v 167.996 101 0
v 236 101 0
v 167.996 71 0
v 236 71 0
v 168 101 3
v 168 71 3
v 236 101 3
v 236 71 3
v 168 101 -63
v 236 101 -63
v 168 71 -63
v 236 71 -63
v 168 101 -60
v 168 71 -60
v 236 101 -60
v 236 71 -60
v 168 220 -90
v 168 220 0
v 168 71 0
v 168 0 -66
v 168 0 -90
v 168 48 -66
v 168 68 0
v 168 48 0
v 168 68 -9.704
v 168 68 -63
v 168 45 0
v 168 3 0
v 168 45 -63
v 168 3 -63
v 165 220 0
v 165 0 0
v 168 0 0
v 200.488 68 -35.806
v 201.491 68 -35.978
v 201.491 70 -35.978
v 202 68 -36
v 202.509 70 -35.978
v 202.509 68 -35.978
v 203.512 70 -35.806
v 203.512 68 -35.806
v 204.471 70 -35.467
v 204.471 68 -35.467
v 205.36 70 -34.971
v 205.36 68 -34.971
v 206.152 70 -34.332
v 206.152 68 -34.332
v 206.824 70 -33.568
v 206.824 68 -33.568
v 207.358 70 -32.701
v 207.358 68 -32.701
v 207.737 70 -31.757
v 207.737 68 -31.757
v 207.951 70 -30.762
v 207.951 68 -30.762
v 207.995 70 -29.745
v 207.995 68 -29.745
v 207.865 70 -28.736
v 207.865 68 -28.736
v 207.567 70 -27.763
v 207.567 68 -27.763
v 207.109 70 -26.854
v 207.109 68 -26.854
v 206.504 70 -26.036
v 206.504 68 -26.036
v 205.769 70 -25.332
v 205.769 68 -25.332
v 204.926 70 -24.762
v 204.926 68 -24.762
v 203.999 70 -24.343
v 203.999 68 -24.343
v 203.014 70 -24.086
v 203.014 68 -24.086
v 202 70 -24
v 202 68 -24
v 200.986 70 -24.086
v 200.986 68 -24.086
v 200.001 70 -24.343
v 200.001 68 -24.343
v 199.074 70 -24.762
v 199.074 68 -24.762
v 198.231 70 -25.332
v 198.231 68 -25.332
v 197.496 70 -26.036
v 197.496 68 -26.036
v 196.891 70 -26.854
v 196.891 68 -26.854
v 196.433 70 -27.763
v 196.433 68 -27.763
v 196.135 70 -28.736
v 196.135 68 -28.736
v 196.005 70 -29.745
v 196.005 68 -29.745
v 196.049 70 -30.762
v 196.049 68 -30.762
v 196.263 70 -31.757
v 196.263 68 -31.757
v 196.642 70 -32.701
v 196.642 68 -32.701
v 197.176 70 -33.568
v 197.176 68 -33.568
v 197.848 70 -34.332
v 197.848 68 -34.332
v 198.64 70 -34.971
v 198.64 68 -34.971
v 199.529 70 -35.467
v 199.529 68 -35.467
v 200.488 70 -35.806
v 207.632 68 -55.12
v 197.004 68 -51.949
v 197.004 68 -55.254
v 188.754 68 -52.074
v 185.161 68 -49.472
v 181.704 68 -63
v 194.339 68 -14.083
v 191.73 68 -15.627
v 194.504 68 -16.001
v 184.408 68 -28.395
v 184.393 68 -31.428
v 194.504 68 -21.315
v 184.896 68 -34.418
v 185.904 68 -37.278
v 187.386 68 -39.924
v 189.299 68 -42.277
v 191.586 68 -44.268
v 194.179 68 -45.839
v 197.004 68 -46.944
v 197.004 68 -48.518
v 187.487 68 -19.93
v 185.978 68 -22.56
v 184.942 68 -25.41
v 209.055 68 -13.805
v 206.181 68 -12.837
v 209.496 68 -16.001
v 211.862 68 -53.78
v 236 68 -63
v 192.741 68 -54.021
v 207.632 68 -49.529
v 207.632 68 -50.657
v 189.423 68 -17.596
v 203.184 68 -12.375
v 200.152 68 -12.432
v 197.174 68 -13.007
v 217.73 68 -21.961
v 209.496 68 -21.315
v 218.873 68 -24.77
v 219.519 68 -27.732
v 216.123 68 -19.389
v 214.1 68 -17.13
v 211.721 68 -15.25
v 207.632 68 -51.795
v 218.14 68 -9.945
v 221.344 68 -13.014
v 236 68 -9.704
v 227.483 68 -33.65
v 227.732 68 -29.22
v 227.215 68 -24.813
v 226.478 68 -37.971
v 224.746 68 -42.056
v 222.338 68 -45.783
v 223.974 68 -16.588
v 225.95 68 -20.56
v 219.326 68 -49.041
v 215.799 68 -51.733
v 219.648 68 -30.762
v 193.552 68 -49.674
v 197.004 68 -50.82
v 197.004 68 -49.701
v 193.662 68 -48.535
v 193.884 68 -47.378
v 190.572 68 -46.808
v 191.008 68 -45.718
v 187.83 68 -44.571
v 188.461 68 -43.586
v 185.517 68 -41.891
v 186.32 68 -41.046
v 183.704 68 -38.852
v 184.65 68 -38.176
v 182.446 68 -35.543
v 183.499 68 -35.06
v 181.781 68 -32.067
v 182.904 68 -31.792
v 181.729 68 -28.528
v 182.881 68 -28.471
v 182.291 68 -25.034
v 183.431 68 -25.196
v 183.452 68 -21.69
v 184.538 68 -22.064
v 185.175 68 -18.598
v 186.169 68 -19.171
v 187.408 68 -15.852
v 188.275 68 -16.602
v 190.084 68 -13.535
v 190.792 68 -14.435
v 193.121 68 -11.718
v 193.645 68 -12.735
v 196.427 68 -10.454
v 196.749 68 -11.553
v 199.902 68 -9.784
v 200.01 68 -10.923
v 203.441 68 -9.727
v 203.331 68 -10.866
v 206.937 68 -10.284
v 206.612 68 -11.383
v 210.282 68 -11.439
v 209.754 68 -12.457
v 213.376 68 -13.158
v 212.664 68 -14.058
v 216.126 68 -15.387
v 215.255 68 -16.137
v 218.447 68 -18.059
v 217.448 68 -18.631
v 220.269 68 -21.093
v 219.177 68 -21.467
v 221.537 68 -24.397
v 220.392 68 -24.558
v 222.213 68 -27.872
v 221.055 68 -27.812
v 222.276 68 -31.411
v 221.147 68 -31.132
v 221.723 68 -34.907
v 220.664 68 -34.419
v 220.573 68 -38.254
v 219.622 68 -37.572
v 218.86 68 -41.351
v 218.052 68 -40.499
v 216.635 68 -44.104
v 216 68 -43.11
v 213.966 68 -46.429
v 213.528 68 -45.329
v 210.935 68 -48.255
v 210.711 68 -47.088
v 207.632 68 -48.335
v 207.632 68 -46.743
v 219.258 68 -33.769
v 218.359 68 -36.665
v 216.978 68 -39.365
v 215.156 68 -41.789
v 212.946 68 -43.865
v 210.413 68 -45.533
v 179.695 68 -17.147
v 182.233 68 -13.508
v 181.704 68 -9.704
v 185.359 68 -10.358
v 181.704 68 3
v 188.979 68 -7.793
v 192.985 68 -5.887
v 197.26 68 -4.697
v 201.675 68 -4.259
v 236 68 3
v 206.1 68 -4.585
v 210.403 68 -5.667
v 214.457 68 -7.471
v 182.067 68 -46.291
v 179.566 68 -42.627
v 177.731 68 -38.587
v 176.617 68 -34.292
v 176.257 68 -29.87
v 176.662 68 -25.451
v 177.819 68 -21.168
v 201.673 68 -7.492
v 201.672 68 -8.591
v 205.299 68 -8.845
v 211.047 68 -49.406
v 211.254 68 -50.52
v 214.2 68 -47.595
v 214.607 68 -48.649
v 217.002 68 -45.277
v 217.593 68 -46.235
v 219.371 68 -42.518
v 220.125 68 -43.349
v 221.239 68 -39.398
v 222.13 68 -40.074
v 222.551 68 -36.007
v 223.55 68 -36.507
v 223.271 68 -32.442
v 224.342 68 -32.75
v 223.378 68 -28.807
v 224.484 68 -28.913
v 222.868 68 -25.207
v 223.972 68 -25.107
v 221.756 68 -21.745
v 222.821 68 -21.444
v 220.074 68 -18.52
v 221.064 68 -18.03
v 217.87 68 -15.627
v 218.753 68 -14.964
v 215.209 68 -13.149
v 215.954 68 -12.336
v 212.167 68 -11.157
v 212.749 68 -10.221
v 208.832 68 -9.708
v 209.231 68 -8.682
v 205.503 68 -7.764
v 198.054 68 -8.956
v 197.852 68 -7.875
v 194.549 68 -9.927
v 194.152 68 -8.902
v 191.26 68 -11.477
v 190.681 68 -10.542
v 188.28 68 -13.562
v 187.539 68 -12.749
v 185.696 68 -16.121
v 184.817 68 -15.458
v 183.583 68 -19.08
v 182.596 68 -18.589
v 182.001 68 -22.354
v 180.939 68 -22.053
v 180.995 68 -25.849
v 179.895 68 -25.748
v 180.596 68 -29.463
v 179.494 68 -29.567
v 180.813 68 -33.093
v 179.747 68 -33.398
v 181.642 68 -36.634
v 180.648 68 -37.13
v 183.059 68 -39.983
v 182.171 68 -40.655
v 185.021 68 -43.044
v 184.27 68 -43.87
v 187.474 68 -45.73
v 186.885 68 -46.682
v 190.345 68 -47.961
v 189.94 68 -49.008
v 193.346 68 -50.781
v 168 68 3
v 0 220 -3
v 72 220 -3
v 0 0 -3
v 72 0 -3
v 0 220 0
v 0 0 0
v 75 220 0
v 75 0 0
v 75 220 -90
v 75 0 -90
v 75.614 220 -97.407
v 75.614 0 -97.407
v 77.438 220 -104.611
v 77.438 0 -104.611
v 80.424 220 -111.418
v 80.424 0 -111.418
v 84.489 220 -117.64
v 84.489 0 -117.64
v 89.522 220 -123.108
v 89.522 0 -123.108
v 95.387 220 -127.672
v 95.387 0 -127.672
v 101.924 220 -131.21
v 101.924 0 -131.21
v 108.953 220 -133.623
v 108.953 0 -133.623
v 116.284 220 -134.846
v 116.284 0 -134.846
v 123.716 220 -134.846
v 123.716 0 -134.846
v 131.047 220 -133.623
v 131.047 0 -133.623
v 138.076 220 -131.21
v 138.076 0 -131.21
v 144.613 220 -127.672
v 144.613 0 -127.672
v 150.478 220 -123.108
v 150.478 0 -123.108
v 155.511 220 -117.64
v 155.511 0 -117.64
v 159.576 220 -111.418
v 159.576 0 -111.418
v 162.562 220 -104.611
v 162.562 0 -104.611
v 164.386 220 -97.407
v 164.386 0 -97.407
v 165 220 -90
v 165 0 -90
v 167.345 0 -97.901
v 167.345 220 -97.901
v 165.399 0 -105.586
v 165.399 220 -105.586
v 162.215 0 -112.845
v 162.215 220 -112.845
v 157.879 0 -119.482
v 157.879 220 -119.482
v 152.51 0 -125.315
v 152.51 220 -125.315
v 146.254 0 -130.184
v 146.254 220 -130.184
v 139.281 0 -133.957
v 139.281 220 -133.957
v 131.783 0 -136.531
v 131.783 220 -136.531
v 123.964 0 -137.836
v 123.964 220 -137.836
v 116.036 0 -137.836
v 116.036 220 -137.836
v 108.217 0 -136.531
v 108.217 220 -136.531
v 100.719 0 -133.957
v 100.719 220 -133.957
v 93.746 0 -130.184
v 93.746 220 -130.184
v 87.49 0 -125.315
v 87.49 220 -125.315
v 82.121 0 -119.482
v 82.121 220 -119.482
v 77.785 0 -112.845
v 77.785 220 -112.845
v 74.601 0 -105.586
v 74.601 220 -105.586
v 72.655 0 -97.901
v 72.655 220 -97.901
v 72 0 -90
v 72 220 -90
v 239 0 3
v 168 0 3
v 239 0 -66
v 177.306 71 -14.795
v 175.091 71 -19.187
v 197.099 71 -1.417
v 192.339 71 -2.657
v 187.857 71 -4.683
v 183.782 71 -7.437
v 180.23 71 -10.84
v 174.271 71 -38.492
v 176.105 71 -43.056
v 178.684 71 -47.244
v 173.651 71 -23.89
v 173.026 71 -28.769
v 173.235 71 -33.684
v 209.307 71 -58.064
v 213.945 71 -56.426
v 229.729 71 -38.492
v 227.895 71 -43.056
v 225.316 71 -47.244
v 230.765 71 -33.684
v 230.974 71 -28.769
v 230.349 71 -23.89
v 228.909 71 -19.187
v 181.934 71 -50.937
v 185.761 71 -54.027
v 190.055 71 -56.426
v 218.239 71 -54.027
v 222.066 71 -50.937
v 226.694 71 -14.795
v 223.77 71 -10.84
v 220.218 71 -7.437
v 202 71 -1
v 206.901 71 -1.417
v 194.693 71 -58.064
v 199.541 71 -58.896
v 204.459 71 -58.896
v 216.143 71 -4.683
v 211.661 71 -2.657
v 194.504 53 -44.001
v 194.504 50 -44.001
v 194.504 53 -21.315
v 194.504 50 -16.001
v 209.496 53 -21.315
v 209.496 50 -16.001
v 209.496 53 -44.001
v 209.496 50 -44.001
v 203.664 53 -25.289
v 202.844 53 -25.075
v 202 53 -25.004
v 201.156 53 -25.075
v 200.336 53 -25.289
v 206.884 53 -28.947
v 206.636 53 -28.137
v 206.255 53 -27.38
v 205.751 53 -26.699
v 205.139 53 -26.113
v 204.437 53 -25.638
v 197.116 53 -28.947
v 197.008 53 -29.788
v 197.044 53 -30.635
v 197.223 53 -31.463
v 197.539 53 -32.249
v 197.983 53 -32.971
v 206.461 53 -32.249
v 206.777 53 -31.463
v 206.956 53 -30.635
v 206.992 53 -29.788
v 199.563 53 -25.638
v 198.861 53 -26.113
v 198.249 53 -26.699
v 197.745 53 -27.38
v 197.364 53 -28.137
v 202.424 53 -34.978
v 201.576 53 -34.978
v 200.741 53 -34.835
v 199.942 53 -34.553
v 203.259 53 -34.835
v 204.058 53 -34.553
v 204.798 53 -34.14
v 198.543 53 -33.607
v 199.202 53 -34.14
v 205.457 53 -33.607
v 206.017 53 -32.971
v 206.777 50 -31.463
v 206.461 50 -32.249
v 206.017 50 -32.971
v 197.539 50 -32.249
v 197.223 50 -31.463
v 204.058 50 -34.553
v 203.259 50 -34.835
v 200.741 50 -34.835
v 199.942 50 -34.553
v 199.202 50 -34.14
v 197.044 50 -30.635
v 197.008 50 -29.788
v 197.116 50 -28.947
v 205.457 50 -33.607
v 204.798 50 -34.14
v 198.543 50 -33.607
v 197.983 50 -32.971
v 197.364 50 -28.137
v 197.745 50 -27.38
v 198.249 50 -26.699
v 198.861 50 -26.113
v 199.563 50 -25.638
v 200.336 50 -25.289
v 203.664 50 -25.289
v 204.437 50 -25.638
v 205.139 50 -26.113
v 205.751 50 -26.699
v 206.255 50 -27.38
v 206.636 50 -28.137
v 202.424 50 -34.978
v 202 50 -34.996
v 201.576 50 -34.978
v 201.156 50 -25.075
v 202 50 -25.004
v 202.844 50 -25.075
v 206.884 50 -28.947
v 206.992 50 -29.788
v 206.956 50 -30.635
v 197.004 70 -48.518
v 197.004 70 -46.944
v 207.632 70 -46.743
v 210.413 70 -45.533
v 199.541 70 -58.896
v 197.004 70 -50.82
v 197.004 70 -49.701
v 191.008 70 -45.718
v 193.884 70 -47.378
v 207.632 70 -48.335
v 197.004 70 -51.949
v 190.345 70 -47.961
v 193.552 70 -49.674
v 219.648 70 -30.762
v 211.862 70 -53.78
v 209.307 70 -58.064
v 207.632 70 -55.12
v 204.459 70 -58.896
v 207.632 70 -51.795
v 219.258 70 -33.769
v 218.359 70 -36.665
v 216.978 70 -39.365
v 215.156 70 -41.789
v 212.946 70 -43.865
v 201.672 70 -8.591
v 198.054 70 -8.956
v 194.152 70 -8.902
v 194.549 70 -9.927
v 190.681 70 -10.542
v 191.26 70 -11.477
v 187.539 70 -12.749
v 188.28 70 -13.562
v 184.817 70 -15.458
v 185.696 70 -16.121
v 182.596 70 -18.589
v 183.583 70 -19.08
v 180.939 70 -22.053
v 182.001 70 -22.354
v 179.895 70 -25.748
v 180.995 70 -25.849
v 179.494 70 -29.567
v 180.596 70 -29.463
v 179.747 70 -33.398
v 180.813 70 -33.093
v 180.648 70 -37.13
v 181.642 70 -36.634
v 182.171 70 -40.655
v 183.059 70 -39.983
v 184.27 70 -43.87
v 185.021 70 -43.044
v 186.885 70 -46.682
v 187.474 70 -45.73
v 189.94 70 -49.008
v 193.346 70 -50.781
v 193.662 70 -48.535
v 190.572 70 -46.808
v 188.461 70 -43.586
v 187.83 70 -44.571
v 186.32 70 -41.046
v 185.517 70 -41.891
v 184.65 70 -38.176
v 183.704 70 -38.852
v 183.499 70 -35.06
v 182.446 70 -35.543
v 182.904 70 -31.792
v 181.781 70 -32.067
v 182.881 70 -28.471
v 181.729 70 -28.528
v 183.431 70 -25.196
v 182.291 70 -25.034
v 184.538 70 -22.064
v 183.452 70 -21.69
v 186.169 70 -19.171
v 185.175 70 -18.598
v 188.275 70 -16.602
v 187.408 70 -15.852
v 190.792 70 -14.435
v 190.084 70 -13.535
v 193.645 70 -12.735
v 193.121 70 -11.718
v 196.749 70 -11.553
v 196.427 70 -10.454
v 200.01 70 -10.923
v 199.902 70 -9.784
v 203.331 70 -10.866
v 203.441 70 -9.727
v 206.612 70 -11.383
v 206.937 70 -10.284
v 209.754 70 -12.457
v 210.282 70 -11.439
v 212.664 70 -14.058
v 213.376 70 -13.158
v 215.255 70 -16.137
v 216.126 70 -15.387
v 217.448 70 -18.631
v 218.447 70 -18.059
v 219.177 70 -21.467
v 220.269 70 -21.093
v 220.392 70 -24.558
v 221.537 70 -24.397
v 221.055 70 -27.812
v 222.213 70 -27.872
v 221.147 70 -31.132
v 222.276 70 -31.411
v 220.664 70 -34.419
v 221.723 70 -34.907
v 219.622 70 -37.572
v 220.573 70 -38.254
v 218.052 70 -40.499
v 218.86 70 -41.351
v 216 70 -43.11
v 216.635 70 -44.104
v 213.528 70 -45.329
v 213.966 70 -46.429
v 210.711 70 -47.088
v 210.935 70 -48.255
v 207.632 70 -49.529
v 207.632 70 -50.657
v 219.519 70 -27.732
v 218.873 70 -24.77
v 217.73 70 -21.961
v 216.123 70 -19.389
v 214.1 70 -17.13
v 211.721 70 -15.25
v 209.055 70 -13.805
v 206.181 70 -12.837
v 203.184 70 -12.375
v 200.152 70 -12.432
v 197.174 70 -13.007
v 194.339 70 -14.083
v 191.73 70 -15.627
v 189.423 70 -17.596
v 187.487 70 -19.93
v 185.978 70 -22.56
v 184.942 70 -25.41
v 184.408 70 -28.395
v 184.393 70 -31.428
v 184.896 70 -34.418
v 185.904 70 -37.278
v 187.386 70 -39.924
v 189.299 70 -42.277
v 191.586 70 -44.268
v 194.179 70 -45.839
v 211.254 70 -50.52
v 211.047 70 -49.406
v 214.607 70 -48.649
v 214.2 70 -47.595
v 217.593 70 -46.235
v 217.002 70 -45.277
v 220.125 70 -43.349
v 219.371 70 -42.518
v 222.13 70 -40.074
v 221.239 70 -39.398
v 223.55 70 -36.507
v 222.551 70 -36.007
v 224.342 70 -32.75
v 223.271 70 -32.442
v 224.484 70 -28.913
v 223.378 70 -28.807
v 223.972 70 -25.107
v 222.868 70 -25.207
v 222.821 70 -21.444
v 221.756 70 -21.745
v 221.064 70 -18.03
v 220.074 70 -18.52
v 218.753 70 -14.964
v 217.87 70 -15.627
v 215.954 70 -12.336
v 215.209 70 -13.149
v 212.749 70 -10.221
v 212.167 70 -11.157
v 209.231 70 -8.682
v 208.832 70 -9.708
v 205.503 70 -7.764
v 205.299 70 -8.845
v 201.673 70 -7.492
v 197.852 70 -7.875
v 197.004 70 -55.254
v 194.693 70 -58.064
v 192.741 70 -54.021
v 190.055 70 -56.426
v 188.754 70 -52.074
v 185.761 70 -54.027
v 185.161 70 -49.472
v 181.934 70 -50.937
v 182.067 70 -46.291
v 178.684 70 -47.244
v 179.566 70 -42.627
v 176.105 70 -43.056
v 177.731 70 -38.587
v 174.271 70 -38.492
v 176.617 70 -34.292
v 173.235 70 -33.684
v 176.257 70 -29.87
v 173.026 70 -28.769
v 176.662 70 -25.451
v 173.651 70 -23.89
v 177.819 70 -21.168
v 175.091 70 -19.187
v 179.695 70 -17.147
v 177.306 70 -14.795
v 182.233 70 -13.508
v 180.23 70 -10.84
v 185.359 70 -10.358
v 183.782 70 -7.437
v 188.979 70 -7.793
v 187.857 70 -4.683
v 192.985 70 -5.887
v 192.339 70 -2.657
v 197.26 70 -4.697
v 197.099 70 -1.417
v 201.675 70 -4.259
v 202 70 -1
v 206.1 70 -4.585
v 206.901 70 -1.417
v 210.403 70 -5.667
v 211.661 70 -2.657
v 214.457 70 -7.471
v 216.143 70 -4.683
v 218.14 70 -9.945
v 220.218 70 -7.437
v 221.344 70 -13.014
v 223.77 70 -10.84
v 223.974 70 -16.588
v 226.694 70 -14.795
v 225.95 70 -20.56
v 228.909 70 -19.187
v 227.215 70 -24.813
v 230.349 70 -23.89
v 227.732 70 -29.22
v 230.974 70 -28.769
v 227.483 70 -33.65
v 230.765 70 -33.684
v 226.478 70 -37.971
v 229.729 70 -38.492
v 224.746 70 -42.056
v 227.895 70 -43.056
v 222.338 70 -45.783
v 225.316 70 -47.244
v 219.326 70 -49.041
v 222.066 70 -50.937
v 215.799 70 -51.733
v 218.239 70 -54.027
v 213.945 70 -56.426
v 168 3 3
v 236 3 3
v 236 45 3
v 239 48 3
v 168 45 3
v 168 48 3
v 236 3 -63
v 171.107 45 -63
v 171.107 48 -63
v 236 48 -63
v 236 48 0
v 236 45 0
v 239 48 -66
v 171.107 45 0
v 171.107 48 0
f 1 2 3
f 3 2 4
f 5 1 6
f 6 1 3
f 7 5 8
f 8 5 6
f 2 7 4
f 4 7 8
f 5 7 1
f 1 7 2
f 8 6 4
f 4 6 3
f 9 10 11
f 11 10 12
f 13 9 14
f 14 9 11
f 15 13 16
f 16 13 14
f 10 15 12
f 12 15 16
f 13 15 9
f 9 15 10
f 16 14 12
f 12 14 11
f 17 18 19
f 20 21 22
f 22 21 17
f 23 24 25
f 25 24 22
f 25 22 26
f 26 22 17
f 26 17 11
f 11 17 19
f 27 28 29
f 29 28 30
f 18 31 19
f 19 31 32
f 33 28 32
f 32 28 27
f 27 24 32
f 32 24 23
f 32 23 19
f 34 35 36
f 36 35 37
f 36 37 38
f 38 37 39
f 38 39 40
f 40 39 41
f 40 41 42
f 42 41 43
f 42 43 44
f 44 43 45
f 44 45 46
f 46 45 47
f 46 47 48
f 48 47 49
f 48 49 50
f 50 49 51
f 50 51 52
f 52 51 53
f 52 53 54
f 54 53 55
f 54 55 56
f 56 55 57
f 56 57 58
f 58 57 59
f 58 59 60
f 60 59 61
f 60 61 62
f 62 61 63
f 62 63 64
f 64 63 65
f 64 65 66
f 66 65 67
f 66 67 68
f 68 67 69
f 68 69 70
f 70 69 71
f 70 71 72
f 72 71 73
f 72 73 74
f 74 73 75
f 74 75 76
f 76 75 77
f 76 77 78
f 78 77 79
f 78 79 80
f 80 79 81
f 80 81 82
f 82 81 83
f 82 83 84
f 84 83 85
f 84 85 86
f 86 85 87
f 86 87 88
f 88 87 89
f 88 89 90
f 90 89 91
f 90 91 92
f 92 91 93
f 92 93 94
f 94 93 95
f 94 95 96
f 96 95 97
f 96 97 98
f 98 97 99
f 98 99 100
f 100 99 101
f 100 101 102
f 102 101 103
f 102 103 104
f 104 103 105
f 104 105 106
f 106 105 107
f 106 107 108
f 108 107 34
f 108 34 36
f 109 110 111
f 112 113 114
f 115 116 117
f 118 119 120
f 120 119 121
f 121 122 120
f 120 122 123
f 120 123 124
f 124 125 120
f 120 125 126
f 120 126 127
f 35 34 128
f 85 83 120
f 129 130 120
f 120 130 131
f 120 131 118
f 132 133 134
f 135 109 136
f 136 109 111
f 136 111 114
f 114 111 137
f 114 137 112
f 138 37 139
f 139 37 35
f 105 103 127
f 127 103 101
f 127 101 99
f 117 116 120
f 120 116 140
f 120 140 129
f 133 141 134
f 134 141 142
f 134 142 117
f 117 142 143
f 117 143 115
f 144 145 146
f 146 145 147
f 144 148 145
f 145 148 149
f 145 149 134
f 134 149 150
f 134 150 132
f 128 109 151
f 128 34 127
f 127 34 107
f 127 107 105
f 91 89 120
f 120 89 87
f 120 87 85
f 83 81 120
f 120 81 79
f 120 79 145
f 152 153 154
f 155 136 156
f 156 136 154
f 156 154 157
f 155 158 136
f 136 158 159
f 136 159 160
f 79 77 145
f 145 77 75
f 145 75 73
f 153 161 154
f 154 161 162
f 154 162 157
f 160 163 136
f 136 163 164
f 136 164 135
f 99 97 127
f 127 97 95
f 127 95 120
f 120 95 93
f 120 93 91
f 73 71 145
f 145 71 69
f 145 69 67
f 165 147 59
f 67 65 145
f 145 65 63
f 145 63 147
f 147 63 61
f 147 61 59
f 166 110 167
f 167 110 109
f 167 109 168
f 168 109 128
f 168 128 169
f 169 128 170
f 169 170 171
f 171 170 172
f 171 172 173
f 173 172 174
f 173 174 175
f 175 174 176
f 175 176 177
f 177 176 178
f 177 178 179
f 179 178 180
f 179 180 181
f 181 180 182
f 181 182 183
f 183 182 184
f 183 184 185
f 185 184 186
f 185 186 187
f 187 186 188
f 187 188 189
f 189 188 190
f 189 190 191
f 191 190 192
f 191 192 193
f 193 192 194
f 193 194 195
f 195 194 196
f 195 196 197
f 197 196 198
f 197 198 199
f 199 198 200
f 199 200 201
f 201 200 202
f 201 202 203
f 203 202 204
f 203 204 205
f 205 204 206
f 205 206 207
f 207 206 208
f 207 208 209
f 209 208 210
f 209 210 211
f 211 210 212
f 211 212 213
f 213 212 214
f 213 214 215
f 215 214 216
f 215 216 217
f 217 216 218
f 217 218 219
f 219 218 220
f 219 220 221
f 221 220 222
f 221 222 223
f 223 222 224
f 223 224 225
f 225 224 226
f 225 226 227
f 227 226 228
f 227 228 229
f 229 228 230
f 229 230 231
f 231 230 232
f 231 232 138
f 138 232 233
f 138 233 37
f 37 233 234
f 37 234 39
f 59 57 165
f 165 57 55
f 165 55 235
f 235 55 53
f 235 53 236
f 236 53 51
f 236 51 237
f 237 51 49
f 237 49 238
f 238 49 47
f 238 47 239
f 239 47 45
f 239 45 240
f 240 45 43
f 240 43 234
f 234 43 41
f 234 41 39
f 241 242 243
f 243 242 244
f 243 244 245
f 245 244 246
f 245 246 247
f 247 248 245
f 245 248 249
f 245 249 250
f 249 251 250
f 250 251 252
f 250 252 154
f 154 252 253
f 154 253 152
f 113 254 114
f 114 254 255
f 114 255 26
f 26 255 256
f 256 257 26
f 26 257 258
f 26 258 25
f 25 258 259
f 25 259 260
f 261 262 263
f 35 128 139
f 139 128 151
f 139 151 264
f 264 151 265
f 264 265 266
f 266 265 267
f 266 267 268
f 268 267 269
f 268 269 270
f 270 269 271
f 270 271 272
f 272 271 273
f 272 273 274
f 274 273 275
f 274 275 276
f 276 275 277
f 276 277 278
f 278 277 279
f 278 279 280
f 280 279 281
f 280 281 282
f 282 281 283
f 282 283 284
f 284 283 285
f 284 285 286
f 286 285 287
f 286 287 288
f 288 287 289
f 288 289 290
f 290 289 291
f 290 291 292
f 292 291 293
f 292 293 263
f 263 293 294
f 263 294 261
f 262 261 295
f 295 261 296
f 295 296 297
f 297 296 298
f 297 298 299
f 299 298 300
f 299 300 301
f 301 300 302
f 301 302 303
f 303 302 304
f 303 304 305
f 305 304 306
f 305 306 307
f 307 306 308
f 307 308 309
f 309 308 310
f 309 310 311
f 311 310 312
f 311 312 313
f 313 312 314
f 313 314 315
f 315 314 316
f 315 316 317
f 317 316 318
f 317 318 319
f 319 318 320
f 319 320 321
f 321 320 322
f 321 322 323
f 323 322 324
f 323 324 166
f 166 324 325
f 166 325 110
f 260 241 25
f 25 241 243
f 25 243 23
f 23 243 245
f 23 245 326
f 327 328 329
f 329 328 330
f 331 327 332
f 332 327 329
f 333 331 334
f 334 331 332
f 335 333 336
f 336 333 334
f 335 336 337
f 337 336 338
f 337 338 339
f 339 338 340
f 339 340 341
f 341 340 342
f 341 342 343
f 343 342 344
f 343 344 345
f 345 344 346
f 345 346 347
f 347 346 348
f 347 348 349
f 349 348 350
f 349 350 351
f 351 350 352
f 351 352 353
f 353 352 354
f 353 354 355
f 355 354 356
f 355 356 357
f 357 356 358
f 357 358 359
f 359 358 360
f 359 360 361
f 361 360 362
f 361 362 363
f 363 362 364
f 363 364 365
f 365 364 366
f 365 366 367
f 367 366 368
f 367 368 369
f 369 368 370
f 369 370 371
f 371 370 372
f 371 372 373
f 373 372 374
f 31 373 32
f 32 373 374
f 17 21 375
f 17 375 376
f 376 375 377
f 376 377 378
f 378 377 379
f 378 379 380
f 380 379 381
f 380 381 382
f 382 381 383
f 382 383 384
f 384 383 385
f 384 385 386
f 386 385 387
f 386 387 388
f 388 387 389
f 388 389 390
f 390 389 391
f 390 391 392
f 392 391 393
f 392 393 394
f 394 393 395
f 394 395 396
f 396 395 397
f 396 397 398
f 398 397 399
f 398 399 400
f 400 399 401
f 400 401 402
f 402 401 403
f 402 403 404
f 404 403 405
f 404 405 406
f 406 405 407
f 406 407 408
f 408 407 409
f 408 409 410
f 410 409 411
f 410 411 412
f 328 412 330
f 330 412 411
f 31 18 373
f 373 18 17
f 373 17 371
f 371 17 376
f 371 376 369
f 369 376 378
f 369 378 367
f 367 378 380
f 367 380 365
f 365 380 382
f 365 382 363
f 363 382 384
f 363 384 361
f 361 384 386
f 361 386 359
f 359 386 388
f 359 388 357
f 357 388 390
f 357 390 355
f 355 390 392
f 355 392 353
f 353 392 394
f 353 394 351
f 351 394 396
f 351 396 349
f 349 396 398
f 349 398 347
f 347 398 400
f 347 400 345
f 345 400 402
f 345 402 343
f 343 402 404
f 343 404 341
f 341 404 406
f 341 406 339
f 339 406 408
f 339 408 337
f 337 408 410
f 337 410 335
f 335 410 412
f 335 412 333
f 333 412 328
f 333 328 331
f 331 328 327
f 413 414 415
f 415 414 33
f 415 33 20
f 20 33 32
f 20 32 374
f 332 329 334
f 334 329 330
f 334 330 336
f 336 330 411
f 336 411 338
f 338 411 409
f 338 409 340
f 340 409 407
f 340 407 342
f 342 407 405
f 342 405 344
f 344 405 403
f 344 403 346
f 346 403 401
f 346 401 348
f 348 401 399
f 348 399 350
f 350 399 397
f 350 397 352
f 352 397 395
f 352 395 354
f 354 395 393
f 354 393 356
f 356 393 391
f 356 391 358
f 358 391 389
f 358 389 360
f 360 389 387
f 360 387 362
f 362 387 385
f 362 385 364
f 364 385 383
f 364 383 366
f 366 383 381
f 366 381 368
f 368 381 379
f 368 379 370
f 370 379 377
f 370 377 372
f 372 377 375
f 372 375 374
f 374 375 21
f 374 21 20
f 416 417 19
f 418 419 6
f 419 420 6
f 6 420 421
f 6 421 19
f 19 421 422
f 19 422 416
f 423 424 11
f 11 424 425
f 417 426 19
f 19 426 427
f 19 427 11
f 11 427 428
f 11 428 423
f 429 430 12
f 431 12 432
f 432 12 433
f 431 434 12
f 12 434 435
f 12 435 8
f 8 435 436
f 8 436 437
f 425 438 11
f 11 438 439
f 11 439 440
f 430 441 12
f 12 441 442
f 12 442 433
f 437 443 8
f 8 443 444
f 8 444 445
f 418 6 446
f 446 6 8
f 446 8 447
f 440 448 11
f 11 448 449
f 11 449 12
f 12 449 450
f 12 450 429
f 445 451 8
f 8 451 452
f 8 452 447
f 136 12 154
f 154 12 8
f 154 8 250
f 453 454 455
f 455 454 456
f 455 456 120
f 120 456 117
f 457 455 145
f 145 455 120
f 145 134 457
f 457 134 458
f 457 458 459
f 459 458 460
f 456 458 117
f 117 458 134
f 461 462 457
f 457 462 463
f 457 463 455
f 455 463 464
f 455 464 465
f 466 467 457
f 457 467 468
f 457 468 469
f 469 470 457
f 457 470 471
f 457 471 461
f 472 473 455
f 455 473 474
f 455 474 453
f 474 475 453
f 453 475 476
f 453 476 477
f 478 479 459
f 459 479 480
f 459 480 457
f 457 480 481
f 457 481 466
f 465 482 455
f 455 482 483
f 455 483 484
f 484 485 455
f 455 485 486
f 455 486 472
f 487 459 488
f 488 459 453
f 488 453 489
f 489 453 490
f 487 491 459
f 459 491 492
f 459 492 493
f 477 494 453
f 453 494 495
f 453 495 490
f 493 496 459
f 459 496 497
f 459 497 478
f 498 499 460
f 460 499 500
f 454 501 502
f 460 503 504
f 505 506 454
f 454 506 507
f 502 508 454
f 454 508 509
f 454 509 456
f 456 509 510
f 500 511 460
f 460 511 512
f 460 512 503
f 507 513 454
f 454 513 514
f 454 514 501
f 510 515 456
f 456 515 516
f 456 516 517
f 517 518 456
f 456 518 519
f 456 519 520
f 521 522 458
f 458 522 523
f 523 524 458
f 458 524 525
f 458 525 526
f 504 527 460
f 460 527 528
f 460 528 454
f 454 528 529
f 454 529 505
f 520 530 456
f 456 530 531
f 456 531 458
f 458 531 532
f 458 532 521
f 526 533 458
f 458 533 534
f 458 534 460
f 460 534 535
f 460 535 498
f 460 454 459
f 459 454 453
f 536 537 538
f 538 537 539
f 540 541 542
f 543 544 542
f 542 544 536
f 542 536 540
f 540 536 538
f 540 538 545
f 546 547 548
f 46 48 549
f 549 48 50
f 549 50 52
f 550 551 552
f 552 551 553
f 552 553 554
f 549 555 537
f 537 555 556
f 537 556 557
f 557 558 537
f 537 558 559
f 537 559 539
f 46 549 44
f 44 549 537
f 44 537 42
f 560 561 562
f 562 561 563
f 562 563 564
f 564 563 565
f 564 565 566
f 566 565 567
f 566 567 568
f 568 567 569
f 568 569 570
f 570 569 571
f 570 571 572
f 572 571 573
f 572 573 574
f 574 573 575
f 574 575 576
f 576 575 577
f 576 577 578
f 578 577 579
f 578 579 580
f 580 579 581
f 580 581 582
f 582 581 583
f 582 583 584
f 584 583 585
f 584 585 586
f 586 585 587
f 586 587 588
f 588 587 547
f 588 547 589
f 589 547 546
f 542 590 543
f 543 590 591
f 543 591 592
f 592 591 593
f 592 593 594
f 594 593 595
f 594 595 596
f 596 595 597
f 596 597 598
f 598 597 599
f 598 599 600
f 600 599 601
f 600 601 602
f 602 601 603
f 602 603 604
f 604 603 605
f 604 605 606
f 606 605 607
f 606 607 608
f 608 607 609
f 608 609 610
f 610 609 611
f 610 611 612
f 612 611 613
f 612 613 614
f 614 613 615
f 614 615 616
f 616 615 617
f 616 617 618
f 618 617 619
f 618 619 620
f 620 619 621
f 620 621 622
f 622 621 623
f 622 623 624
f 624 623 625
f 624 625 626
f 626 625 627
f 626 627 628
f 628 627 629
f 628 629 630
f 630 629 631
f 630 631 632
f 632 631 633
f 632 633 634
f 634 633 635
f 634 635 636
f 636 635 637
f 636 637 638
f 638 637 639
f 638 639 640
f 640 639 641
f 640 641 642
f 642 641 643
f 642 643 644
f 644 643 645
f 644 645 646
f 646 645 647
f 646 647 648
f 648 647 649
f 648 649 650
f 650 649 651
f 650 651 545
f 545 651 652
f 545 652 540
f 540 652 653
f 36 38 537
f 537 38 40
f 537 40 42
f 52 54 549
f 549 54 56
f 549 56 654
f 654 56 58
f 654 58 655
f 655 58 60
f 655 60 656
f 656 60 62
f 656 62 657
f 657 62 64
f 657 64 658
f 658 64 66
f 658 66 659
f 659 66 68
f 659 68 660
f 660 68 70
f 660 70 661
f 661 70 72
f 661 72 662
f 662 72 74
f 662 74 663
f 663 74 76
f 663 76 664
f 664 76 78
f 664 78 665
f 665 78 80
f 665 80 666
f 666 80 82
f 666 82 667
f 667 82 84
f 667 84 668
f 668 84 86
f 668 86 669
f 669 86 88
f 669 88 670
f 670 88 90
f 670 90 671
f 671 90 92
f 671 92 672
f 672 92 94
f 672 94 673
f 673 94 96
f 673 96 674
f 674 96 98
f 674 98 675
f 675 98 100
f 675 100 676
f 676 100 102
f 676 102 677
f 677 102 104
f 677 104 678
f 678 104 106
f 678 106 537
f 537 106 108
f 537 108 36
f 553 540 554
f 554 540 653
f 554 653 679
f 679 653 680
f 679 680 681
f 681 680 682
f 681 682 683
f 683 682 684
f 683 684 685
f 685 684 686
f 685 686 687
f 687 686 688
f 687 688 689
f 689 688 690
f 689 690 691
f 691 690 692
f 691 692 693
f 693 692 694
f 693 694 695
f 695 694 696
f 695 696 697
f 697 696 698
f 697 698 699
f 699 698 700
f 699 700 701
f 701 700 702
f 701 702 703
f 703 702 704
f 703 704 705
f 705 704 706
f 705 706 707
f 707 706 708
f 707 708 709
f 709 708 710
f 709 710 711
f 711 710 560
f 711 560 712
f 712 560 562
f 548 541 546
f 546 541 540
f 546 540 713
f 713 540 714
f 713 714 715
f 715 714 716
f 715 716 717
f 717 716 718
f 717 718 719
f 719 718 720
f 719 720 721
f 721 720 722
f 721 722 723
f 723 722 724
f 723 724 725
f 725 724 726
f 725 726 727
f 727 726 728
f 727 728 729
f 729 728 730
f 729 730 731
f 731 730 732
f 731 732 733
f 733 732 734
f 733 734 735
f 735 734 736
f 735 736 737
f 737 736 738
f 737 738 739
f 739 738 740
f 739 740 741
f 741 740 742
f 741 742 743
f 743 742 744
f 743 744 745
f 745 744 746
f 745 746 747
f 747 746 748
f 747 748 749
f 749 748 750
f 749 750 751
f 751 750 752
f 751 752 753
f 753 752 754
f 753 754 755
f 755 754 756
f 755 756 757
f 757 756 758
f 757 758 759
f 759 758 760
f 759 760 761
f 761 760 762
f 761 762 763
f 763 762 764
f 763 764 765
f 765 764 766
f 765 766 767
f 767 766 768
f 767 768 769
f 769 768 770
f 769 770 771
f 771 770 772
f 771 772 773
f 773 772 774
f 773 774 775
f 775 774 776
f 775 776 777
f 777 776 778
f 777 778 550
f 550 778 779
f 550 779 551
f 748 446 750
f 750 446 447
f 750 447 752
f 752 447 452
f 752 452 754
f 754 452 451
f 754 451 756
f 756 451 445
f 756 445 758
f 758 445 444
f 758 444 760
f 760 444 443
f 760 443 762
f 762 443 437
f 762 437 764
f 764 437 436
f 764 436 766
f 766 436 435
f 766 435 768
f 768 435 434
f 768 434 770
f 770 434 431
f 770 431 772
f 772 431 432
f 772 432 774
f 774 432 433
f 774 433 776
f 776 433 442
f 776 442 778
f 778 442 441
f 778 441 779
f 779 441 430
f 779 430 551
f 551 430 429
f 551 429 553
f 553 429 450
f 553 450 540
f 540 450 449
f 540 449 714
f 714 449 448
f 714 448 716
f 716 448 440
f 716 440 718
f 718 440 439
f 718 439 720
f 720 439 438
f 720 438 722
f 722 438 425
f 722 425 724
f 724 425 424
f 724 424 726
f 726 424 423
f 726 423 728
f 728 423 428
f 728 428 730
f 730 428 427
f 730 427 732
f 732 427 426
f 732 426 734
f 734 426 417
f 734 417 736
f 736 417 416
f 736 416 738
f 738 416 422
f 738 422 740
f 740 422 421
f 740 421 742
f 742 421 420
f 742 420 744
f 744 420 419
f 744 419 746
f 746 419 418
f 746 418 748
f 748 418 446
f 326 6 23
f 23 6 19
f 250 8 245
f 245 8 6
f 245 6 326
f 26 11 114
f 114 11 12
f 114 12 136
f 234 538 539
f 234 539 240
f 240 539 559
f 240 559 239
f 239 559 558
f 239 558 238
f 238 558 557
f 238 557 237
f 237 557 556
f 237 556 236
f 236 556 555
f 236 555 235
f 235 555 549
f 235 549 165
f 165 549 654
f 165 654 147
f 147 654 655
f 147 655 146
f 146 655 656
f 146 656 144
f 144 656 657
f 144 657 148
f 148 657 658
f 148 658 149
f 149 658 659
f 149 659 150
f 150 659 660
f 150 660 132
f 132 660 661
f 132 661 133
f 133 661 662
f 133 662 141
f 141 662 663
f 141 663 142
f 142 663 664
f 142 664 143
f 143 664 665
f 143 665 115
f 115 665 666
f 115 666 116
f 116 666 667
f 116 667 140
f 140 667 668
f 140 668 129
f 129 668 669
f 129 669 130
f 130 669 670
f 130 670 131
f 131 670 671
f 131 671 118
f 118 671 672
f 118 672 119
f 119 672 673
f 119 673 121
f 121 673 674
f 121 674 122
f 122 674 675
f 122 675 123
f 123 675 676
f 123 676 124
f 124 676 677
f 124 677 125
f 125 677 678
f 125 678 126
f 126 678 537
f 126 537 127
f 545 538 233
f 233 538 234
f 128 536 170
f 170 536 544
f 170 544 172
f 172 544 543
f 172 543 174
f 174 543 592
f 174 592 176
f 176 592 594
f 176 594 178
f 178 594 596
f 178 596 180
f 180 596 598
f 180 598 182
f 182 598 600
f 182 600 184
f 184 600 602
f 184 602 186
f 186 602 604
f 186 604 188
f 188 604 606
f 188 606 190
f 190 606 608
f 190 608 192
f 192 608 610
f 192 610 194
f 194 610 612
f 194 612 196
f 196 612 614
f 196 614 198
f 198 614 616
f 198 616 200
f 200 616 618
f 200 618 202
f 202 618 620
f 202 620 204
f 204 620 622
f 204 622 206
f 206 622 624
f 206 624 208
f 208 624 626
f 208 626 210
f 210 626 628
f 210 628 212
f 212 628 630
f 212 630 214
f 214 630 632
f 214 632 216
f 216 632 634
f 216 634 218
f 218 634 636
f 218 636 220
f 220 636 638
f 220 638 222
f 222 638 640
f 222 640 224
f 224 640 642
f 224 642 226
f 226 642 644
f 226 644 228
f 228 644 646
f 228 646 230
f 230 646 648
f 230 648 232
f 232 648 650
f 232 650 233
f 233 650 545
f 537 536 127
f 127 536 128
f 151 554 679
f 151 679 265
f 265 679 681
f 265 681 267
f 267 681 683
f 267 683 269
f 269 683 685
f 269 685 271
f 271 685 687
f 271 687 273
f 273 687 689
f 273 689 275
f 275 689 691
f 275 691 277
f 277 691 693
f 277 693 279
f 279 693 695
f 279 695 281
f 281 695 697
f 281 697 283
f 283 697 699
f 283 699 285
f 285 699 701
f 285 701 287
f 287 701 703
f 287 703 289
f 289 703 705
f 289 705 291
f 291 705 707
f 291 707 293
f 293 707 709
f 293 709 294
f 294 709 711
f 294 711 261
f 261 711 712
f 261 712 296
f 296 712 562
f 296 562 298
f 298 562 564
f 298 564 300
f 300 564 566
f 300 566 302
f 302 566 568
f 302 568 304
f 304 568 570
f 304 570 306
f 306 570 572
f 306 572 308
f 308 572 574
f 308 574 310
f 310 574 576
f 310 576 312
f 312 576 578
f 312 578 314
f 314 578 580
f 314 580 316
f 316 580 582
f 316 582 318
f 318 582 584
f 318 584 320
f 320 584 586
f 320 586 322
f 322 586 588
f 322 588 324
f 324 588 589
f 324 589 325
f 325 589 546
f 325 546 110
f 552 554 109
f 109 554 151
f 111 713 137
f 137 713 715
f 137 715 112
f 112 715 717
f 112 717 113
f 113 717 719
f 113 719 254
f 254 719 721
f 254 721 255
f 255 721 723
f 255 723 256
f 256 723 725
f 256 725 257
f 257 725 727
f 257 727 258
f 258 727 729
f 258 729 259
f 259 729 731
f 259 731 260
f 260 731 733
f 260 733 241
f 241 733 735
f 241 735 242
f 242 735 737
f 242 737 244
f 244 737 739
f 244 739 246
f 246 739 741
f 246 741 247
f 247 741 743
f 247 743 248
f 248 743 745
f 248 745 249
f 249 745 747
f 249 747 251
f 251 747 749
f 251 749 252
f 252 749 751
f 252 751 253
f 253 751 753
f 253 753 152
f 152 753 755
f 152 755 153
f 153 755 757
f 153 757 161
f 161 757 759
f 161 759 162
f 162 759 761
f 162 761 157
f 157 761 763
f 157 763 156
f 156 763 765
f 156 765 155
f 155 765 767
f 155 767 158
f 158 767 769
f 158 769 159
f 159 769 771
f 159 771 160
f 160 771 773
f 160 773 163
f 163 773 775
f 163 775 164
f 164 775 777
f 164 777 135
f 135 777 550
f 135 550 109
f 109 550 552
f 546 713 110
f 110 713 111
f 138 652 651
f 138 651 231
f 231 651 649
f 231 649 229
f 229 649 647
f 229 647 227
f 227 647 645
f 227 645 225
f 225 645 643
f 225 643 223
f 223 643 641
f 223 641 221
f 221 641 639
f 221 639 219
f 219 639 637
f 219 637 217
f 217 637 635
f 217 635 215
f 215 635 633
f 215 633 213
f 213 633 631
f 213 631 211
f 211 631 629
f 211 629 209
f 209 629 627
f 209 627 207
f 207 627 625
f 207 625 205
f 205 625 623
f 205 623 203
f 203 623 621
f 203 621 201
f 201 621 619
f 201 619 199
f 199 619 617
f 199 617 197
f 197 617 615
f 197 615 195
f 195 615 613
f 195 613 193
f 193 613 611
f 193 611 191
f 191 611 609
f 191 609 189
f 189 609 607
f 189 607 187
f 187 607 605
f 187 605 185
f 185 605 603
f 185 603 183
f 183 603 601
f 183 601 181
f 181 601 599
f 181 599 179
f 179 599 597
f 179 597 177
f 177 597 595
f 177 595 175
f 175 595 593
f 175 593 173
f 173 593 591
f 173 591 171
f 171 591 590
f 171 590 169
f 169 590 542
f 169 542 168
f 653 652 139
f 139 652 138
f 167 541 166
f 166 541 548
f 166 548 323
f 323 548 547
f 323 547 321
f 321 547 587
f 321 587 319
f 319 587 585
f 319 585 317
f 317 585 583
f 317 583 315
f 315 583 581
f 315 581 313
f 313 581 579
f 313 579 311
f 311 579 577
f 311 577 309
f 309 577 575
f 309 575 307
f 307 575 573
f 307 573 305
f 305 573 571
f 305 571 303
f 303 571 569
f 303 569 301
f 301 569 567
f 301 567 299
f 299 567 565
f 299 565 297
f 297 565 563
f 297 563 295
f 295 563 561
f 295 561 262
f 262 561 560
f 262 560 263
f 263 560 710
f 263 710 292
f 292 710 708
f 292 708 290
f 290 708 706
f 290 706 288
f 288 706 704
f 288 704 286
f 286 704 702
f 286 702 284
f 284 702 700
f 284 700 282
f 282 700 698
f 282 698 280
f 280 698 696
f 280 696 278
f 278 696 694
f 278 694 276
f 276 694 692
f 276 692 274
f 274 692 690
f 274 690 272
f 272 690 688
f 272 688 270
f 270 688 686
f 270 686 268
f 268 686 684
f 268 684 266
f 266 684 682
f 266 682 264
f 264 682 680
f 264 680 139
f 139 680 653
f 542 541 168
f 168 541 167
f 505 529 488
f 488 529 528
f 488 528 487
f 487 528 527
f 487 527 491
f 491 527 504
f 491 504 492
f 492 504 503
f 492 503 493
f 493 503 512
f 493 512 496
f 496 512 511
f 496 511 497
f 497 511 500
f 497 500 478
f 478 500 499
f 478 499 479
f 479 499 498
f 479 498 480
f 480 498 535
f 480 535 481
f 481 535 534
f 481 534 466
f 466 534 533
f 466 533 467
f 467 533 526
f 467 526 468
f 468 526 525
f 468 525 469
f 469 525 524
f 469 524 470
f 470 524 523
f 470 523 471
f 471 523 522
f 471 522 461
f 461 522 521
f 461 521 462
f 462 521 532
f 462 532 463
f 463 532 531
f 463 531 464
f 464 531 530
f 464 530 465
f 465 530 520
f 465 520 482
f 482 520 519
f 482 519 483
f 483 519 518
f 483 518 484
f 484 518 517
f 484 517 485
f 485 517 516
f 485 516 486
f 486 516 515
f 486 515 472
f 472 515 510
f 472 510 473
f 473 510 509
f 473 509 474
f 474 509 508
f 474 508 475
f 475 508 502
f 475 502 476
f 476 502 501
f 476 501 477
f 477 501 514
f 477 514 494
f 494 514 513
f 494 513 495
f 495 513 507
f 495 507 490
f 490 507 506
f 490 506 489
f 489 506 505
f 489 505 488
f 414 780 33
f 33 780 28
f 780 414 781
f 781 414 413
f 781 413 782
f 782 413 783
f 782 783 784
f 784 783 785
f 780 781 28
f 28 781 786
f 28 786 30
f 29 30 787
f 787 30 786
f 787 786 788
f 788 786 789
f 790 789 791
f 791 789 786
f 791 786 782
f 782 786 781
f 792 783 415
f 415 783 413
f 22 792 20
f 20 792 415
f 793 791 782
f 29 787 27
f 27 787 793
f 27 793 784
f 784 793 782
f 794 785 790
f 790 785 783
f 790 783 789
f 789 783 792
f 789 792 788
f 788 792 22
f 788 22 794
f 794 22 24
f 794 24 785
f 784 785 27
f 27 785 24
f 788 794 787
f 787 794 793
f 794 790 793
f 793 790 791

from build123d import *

# Parameters (mm, degrees)
EXTRUDE_1_DEPTH     = 220
SKETCH_2_W          = 68
SKETCH_2_H          = 3
EXTRUDE_2_DEPTH     = 60
SKETCH_3_R          = 6
CUT_EXTRUDE_2_DEPTH = 10
SKETCH_4_W          = 14.991340548
SKETCH_4_H          = 5.314075951
EXTRUDE_2_2_DEPTH   = 15
SKETCH_7_W          = 14.991340548
SKETCH_7_H          = 3
EXTRUDE_3_DEPTH     = 28
SKETCH_9_R          = 29
CUT_EXTRUDE_3_DEPTH = 1
SKETCH_12_W         = 68
SKETCH_12_H         = 3
EXTRUDE_5_DEPTH     = 3
EXTRUDE_8_DEPTH     = 30
SKETCH_15_W         = 68
SKETCH_15_H         = 3
EXTRUDE_9_DEPTH     = 3
SKETCH_16_W         = 68
SKETCH_16_H         = 3
EXTRUDE_10_DEPTH    = 30
SKETCH_17_R         = 4.99636976
CUT_EXTRUDE_6_DEPTH = 30
SKETCH_24_W         = 68
SKETCH_24_H         = 66
EXTRUDE_14_DEPTH    = 3
EXTRUDE_15_DEPTH    = 45
SKETCH_28_W         = 71
SKETCH_28_H         = 69
SKETCH_28_W_2       = 64.892616755
SKETCH_28_H_2       = 63
EXTRUDE_16_DEPTH    = 3


with BuildPart() as part:
    # 草图1 → 拉伸-薄壁1 (new body)
    with BuildSketch(Plane(origin=(0, 0, 0), x_dir=(1, 0, 0), z_dir=(0, 1, 0))):
        with BuildLine():
            Line((0, 0), (75, 0))
            Line((75, 0), (75, 90))
            ThreePointArc((75, 90), (120, 135), (165, 90))
            Line((165, 90), (165, 0))
            Line((165, 0), (168, 0))
            Line((168, 0), (168, 90))
            ThreePointArc((168, 90), (120, 138), (72, 90))
            Line((72, 90), (72, 3))
            Line((72, 3), (0, 3))
            Line((0, 3), (0, 0))
        make_face()
    extrude(amount=EXTRUDE_1_DEPTH)

    # 草图2 → Extrude 2 (add)
    with BuildSketch(Plane.XY):
        with Locations((202, 69.5)):
            Rectangle(SKETCH_2_W, SKETCH_2_H)
    extrude(amount=-EXTRUDE_2_DEPTH)

    # 草图3 → 切除-拉伸2 (cut)
    with BuildSketch(Plane(origin=(0, 71, 0), x_dir=(1, 0, 0), z_dir=(0, 1, 0))):
        with Locations(Location((202, 30, 0), (0, 0, 270))):
            Circle(SKETCH_3_R)
    extrude(amount=-CUT_EXTRUDE_2_DEPTH, mode=Mode.SUBTRACT)

    # 草图4 → Extrude 2 2 (add)
    with BuildSketch(Plane(origin=(0, 68, 0), x_dir=(-1, 0, 0), z_dir=(0, -1, 0))):
        with Locations((-202, 18.657720536)):
            Rectangle(SKETCH_4_W, SKETCH_4_H)
    extrude(amount=EXTRUDE_2_2_DEPTH)

    # 草图7 → 凸台-拉伸3 (add)
    with BuildSketch(Plane.XY.offset(-16.00068256)):
        with Locations((202, 51.5)):
            Rectangle(SKETCH_7_W, SKETCH_7_H)
    extrude(amount=-EXTRUDE_3_DEPTH)

    # 草图9 → 切除-拉伸3 (cut)
    with BuildSketch(Plane(origin=(0, 71, 0), x_dir=(1, 0, 0), z_dir=(0, 1, 0))):
        with Locations(Location((202, 30, 0), (0, 0, 270))):
            Circle(SKETCH_9_R)
    extrude(amount=-CUT_EXTRUDE_3_DEPTH, mode=Mode.SUBTRACT)

    # 草图12 → 凸台-拉伸5 (add)
    with BuildSketch(Plane.XY):
        with Locations((202, 69.5)):
            Rectangle(SKETCH_12_W, SKETCH_12_H)
    extrude(amount=EXTRUDE_5_DEPTH)

    # 草图15 → 凸台-拉伸9 (add)
    with BuildSketch(Plane(origin=(0, 0, -60), x_dir=(-1, 0, 0), z_dir=(0, 0, -1))):
        with Locations((-202, 69.5)):
            Rectangle(SKETCH_15_W, SKETCH_15_H)
    extrude(amount=EXTRUDE_9_DEPTH)

    # 草图17 → 切除-拉伸6 (cut)
    with BuildSketch(Plane(origin=(0, 71, 0), x_dir=(1, 0, 0), z_dir=(0, 1, 0))):
        with Locations(Location((202, 30, 0), (0, 0, 270))):
            Circle(SKETCH_17_R)
        with BuildLine():
            Line((197.00363024, 55.253950311), (197.00363024, 51.949118376))
            ThreePointArc((197.00363024, 51.949118376), (201.672799014, 7.491769332), (207.632270084, 51.794610388))
            Line((207.632270084, 51.794610388), (207.632270084, 55.11977808))
            ThreePointArc((207.632270084, 55.11977808), (201.675049462, 4.258591254), (197.00363024, 55.253950311))
        make_face()
        with BuildLine():
            Line((197.00363024, 49.700946475), (197.00363024, 50.820061064))
            ThreePointArc((197.00363024, 50.820061064), (201.671776631, 8.591335331), (207.632270084, 50.657109846))
            Line((207.632270084, 50.657109846), (207.632270084, 49.528659362))
            ThreePointArc((207.632270084, 49.528659362), (201.670586859, 9.678029383), (197.00363024, 49.700946475))
        make_face()
        with BuildLine():
            Line((197.00363024, 46.943607575), (197.00363024, 48.517967978))
            ThreePointArc((197.00363024, 48.517967978), (201.66909035, 10.822686642), (207.632270084, 48.334567966))
            Line((207.632270084, 48.334567966), (207.632270084, 46.742971126))
            ThreePointArc((207.632270084, 46.742971126), (201.666599263, 12.338222276), (197.00363024, 46.943607575))
        make_face()
    extrude(amount=-CUT_EXTRUDE_6_DEPTH, mode=Mode.SUBTRACT)

    # 草图24 → 凸台-拉伸14 (add)
    with BuildSketch(Plane(origin=(0, 0, 0), x_dir=(1, 0, 0), z_dir=(0, 1, 0))):
        with Locations((202, 30)):
            Rectangle(SKETCH_24_W, SKETCH_24_H)
    extrude(amount=EXTRUDE_14_DEPTH)

    # 草图25 → 凸台-拉伸15 (add)
    with BuildSketch(Plane(origin=(0, 0, 0), x_dir=(1, 0, 0), z_dir=(0, 1, 0))):
        Polygon((168, 63), (168, 66), (236, 66), (239, 66), (239, -3), (236, -3), (236, 63), align=None)
    extrude(amount=EXTRUDE_15_DEPTH)

    # 草图28 → 凸台-拉伸16 (add)
    with BuildSketch(Plane(origin=(0, 45, 0), x_dir=(1, 0, 0), z_dir=(0, 1, 0))):
        with Locations((203.5, 31.5)):
            Rectangle(SKETCH_28_W, SKETCH_28_H)
        with Locations((203.553691623, 31.5)):
            Rectangle(SKETCH_28_W_2, SKETCH_28_H_2, mode=Mode.SUBTRACT)
    extrude(amount=EXTRUDE_16_DEPTH)


with BuildPart() as body_2:
    # 草图13 → 凸台-拉伸8 (new body)
    with BuildSketch(Plane(origin=(0, 71, 0), x_dir=(1, 0, 0), z_dir=(0, 1, 0))):
        Polygon((167.996083908, 0), (168, -3), (236, -3), (236, 0), align=None)
    extrude(amount=EXTRUDE_8_DEPTH)


with BuildPart() as body_3:
    # 草图16 → 凸台-拉伸10 (new body)
    with BuildSketch(Plane(origin=(0, 71, 0), x_dir=(1, 0, 0), z_dir=(0, 1, 0))):
        with Locations((202, 61.5)):
            Rectangle(SKETCH_16_W, SKETCH_16_H)
    extrude(amount=EXTRUDE_10_DEPTH)


solid = Compound([part.part, body_2.part, body_3.part])
